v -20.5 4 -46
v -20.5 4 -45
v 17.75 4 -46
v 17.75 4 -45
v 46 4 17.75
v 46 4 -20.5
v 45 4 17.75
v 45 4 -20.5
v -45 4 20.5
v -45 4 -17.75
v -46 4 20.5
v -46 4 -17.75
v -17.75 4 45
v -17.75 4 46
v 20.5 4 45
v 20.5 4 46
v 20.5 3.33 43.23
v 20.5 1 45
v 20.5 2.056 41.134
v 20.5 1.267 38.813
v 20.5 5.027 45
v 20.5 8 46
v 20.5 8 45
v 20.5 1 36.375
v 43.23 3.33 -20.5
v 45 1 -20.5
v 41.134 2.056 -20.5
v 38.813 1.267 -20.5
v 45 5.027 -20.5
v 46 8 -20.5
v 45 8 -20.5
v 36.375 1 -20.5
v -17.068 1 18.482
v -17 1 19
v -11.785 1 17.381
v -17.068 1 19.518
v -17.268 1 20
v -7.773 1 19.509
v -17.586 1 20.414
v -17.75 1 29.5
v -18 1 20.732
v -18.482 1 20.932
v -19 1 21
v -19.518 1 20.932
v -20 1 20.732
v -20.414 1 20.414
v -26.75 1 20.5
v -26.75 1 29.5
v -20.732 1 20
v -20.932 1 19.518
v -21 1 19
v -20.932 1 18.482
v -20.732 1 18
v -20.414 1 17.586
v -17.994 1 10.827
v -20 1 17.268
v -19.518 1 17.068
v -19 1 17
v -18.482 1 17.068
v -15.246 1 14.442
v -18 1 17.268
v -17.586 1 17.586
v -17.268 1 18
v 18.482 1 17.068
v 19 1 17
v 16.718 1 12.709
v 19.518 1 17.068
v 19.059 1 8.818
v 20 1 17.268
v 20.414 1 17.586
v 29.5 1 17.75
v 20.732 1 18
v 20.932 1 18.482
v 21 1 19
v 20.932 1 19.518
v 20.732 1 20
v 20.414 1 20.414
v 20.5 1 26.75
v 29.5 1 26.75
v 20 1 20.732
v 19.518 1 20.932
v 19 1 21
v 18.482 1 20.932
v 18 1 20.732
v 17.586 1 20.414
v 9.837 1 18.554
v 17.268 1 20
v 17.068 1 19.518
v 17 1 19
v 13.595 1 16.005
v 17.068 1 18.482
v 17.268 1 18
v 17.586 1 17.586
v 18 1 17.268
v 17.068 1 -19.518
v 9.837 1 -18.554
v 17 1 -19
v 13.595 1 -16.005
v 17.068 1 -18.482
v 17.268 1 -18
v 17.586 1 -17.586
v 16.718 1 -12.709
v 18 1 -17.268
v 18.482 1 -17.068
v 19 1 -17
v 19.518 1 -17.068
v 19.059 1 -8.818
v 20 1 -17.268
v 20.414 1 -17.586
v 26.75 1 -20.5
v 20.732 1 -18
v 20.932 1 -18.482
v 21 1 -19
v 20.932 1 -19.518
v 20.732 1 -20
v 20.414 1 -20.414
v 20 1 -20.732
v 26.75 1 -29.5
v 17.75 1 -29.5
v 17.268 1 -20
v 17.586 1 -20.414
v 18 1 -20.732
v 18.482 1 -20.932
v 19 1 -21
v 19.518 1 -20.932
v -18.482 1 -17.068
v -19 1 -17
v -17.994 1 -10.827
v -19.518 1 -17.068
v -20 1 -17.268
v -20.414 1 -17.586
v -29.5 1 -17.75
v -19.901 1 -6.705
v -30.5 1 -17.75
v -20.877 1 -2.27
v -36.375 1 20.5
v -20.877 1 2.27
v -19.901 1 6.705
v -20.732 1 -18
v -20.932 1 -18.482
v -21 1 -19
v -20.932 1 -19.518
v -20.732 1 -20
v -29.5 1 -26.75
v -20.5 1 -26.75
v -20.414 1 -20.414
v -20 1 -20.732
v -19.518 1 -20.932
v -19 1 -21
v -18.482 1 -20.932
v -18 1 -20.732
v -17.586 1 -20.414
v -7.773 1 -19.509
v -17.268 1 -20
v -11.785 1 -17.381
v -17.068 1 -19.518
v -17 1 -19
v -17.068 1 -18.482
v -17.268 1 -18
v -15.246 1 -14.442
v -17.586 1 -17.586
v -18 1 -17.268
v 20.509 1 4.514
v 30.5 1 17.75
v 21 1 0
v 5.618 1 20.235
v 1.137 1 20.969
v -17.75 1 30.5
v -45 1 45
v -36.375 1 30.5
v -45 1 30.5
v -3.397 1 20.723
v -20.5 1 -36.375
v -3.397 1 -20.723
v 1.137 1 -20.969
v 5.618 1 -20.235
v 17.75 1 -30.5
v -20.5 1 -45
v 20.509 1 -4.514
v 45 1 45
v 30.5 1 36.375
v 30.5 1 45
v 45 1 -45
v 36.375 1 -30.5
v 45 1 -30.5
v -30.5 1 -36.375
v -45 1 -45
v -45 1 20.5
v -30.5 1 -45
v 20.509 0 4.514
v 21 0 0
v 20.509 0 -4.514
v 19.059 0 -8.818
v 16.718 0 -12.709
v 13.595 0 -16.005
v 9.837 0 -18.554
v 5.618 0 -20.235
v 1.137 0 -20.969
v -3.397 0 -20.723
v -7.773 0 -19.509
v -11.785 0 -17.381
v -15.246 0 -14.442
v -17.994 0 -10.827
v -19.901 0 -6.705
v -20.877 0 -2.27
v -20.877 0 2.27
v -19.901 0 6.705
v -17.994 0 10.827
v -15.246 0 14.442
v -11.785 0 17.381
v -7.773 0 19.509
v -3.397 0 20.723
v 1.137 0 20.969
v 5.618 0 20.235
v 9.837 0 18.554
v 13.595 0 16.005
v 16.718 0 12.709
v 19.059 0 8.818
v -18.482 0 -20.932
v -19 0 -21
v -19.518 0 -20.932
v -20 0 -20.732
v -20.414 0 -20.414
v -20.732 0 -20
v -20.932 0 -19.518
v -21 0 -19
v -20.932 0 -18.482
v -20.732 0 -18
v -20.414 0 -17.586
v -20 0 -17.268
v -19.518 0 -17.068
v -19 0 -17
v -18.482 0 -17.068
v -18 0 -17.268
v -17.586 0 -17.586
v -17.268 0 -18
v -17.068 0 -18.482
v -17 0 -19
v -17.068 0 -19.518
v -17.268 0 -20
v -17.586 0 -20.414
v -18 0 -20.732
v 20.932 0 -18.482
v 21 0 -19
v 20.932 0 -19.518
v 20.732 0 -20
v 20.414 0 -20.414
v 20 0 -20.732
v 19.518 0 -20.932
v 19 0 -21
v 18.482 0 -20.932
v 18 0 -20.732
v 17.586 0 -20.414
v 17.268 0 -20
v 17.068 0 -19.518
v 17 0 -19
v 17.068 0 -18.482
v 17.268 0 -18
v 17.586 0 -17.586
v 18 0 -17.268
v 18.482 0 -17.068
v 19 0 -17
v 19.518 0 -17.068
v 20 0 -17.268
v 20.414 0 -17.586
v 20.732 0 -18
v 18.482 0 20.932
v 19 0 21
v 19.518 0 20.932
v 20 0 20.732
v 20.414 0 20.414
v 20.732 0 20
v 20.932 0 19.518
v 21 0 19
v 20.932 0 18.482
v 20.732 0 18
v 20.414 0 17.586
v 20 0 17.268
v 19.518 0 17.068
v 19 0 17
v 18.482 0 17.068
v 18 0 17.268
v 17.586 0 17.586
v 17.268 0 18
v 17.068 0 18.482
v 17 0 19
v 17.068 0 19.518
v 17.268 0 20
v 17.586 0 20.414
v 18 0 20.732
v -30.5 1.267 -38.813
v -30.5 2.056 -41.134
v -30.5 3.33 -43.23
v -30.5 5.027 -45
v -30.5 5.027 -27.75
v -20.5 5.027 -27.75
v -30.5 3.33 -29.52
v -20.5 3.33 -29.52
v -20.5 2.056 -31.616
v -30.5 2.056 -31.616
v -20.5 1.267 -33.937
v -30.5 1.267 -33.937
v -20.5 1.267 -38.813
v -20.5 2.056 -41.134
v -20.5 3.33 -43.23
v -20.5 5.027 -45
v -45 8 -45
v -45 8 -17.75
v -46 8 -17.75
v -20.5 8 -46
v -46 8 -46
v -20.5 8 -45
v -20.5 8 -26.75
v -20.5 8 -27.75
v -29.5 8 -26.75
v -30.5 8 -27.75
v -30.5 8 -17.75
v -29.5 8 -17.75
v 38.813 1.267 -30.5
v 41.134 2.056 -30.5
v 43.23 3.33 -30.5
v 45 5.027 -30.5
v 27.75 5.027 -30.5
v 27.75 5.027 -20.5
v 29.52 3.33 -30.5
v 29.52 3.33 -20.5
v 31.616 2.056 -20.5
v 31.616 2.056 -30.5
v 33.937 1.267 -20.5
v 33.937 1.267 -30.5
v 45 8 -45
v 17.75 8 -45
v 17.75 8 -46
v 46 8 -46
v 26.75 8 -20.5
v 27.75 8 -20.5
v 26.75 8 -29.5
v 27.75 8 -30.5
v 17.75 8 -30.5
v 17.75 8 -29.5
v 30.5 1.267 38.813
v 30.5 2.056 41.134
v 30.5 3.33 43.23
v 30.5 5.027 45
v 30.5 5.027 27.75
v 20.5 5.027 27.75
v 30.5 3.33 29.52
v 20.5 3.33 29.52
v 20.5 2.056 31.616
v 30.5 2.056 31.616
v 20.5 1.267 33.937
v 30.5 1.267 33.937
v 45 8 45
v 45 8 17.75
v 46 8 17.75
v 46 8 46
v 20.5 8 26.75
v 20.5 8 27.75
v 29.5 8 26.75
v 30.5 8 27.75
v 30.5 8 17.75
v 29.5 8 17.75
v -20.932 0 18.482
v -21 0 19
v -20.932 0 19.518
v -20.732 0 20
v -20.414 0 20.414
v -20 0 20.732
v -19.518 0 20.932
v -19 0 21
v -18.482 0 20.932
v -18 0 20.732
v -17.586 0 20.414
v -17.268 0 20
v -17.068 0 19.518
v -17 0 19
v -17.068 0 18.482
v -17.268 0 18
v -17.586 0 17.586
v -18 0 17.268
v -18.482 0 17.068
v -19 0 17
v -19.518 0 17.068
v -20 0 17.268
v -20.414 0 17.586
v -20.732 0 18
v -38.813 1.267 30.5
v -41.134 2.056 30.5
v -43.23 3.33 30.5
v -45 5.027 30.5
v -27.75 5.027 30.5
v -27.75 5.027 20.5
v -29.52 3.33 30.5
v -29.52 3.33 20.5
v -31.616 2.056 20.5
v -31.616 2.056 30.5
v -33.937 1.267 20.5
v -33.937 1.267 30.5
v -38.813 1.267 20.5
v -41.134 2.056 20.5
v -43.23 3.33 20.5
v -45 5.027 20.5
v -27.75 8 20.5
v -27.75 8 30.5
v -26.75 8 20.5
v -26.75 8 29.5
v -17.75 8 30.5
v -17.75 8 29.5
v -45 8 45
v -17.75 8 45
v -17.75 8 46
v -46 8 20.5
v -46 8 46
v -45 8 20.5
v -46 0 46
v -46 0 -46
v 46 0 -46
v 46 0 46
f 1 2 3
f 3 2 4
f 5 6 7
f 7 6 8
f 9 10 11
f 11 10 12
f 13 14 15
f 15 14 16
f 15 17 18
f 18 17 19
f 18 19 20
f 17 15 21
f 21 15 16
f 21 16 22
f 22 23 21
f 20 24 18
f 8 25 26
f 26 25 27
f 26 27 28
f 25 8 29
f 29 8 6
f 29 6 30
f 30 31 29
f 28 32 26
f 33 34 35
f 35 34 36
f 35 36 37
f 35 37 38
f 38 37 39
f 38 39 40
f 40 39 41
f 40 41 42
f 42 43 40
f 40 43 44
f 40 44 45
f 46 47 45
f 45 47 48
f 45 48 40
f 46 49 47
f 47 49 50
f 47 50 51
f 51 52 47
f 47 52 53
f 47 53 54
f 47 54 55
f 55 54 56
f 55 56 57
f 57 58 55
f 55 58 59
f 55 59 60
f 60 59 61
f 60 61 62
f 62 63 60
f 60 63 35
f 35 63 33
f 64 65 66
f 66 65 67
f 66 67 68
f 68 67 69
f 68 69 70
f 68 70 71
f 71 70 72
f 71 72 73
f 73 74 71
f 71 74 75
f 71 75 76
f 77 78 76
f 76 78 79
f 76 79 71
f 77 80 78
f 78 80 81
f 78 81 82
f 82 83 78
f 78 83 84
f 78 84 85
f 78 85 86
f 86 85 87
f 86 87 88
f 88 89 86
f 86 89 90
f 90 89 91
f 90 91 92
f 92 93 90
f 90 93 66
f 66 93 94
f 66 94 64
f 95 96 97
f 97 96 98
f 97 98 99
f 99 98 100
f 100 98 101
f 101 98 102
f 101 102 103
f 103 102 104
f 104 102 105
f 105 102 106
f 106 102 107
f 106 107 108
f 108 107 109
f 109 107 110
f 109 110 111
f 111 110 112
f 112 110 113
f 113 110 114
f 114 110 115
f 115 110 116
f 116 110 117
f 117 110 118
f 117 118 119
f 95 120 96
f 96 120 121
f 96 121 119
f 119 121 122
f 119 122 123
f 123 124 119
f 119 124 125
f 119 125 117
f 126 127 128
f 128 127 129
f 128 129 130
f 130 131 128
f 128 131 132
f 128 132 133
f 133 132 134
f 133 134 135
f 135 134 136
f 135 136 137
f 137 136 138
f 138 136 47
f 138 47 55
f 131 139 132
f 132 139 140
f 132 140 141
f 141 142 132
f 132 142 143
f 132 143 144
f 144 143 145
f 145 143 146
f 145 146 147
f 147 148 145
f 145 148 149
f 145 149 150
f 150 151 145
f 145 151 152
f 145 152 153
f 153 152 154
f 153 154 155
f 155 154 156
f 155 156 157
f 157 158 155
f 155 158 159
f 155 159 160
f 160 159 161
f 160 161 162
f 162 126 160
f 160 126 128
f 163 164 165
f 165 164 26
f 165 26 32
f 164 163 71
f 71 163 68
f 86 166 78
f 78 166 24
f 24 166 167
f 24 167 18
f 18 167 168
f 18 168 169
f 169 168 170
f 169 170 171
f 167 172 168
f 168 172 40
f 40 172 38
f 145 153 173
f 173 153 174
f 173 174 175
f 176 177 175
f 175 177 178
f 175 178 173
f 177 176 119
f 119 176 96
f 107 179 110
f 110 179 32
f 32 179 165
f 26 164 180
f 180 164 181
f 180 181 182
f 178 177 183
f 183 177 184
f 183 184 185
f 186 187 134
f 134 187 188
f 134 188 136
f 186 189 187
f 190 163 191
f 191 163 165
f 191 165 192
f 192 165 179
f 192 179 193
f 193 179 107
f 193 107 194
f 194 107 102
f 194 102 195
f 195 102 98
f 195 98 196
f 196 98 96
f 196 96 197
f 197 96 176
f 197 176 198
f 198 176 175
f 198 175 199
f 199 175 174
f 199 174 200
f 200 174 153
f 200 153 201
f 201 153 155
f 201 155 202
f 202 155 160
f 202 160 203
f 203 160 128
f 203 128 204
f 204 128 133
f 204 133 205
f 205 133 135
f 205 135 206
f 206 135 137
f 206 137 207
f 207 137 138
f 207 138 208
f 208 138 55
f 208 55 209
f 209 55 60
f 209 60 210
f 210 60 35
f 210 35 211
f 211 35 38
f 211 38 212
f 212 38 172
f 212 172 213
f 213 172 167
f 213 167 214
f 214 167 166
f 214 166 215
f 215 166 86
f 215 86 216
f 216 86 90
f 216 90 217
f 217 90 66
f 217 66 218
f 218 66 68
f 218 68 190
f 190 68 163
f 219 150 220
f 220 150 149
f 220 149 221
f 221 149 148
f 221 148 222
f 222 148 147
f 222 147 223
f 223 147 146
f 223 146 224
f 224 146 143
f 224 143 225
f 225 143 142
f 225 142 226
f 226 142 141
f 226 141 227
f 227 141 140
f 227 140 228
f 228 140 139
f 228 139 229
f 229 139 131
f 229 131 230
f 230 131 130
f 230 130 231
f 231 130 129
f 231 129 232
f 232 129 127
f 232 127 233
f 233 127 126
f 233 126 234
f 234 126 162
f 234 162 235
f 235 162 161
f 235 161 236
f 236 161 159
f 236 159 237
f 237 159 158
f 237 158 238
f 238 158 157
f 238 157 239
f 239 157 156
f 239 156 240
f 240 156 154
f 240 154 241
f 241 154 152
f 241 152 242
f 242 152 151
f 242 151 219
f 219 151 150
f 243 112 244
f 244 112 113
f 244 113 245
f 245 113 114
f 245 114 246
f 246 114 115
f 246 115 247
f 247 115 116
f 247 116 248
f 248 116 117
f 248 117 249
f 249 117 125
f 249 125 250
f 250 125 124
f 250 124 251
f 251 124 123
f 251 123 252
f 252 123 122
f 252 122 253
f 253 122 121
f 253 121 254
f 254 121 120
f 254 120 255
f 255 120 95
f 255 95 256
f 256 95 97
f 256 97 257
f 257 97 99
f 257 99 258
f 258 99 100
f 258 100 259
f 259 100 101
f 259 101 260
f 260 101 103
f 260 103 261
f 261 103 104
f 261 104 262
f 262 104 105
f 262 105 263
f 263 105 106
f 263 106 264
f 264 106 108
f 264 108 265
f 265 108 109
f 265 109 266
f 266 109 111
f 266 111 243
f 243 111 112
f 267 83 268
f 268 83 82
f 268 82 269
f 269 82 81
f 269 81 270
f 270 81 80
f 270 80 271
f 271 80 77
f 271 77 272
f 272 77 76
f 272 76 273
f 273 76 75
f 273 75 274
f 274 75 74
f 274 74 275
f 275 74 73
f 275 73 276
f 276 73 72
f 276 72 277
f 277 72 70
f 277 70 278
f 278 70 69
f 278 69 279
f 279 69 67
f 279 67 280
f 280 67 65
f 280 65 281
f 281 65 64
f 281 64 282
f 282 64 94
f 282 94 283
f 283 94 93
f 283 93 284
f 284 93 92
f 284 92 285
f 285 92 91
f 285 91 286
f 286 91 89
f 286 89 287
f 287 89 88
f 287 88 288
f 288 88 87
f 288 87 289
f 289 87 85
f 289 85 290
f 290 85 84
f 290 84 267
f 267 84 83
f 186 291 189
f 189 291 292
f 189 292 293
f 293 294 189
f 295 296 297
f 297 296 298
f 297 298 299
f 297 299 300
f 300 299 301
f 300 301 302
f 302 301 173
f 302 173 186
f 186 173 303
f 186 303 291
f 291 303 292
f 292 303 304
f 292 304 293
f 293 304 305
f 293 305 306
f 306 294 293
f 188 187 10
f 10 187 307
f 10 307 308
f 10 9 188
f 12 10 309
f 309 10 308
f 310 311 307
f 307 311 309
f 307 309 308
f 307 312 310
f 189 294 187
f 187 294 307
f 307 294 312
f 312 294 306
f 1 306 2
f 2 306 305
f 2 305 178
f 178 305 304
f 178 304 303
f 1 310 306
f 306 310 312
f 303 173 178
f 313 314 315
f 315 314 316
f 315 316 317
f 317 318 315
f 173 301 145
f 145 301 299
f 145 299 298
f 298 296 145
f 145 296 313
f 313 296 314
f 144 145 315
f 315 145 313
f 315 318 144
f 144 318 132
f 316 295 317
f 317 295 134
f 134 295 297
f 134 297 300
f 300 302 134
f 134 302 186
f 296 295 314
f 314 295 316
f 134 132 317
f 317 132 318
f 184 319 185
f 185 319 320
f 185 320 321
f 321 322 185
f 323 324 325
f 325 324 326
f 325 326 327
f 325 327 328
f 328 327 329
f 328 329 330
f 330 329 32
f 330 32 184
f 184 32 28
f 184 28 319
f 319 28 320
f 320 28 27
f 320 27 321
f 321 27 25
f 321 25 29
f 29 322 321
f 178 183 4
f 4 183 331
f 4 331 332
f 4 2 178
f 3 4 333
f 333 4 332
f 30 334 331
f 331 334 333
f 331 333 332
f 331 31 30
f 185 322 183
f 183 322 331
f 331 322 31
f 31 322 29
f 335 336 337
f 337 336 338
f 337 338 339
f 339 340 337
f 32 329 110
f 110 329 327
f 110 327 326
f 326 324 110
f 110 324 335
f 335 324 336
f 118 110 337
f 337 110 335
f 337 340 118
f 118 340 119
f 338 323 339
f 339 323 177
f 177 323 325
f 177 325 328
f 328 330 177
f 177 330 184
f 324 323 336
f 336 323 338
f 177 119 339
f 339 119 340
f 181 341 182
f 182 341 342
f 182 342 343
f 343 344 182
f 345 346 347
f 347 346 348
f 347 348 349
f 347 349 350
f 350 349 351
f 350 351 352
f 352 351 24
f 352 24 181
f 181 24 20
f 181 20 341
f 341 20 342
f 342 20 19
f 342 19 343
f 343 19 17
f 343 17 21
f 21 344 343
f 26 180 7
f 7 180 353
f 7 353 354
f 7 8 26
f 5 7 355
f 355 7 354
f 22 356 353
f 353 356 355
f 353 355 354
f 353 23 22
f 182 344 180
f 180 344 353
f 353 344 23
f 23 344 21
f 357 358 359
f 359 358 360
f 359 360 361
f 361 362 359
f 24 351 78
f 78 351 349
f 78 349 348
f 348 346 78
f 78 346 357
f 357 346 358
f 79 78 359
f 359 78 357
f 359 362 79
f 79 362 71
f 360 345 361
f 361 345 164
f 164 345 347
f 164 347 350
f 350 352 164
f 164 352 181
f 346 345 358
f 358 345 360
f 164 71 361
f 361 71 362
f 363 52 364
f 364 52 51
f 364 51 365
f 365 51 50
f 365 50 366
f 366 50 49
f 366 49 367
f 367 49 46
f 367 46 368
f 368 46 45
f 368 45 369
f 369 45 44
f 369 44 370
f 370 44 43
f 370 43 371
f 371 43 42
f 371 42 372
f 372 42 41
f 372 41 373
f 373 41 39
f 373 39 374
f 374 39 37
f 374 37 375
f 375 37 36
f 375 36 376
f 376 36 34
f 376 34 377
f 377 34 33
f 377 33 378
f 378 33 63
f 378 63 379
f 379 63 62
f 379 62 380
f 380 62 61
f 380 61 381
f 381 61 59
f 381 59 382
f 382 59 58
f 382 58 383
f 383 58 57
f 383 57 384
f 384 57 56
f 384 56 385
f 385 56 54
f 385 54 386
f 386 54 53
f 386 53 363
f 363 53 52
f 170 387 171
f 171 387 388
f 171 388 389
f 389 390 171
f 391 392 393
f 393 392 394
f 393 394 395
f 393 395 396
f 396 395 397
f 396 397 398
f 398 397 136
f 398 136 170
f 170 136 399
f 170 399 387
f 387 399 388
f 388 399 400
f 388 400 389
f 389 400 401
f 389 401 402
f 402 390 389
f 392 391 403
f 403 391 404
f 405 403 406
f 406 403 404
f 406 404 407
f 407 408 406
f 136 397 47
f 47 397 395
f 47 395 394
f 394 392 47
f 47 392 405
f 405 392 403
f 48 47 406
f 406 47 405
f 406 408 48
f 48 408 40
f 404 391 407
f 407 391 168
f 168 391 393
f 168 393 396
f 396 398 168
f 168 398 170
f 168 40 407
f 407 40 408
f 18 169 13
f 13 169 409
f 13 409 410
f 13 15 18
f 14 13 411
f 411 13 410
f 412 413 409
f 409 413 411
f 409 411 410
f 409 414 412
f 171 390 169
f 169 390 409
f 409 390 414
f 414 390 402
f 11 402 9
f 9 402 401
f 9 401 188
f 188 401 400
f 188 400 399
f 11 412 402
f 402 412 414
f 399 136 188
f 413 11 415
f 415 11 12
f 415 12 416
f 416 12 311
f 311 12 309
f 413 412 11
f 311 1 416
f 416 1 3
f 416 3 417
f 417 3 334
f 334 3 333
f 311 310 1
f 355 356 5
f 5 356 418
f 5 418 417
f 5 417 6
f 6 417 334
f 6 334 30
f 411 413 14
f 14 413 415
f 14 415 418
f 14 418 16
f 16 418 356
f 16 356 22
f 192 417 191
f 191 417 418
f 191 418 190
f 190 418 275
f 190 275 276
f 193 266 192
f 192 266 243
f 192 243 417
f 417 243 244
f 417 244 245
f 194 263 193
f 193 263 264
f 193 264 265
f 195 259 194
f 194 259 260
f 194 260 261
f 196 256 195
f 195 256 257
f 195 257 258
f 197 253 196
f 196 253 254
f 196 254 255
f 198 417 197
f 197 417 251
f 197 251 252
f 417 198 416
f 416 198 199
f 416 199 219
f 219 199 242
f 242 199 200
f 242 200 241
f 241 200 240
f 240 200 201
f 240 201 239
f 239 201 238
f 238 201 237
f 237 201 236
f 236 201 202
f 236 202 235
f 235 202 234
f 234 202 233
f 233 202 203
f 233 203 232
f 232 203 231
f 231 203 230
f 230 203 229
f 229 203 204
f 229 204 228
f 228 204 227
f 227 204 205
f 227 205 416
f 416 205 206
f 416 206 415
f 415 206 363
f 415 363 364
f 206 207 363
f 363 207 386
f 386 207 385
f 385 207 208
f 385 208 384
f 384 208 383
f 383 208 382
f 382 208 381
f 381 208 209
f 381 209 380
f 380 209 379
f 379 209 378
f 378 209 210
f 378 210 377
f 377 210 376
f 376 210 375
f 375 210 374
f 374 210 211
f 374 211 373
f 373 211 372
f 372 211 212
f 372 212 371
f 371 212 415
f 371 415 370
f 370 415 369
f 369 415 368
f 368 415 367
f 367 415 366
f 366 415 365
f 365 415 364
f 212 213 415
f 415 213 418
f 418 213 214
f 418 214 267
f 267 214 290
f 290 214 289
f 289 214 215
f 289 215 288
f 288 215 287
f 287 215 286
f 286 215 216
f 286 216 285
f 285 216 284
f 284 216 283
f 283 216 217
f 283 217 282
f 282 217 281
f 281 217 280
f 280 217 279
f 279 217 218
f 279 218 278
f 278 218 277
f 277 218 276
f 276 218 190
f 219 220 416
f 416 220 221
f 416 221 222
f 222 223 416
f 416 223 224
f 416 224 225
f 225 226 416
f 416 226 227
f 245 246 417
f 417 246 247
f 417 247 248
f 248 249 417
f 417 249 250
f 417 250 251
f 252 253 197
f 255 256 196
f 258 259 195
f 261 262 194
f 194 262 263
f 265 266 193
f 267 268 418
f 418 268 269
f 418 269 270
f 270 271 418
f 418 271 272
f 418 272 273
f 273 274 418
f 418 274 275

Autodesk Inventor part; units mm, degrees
ref_plane "YZ Plane" through (0, 0, 0) normal (1, 0, 0) x (0, 1, 0)
ref_plane "XZ Plane" through (0, 0, 0) normal (0, 1, 0) x (-1, 0, 0)
ref_plane "XY Plane" through (0, 0, 0) normal (0, 0, 1) x (1, 0, 0)
sketch "Sketch1" plane through (0, 0, 0) normal (0, 1, 0) x (-1, 0, 0)
  line L0 (45, 45) -> (-45, 45)
  line L1 (-45, 45) -> (-45, -45)
  line L2 (-45, -45) -> (45, -45)
  line L3 (45, -45) -> (45, 45)
  line L4 (45, 45) -> (-45, -45) construction
  line L5 (-45, 45) -> (45, -45) construction
  line L6 (-46, 46) -> (46, 46)
  line L7 (46, 46) -> (46, -46)
  line L8 (46, -46) -> (-46, -46)
  line L9 (-46, -46) -> (-46, 46)
  line L10 (-46, 46) -> (46, -46) construction
  line L11 (46, 46) -> (-46, -46) construction
  point P0 (0, 0)
  dimension "d0" = 90
  dimension "d1" = 90
  dimension "d2" = 92
  dimension "d3" = 92
extrude "Extrusion1" add sketch "Sketch1" along normal blind 1 contours L3 L2 L1 L0 | L6 L7 L8 L9
sketch "Sketch2" plane through (0, 1, 0) normal (0, 1, 0) x (1, 0, 0)
  line L0 (-46, -46) -> (46, -46) projected
  line L1 (46, -46) -> (46, 46) projected
  line L2 (46, 46) -> (-46, 46) projected
  line L3 (-46, 46) -> (-46, -46) projected
  line L4 (45, 45) -> (-45, 45)
  line L5 (-45, -20.5) -> (-45, -45)
  line L6 (-45, -45) -> (-17.75, -45)
  line L7 (45, -45) -> (45, 45)
  line L8 (45, 45) -> (-45, -45) construction
  line L9 (-45, 45) -> (45, -45) construction
  line L10 (-27.75, -30.5) -> (-17.75, -30.5)
  line L11 (-17.75, -30.5) -> (-17.75, -29.5)
  line L12 (-17.75, -29.5) -> (-27.75, -29.5)
  line L13 (-27.75, -29.5) -> (-27.75, -30.5)
  line L14 (-27.75, -30.5) -> (-26.75, -30.5)
  line L15 (-26.75, -30.5) -> (-26.75, -20.5)
  line L16 (-26.75, -20.5) -> (-27.75, -20.5)
  line L17 (-27.75, -20.5) -> (-27.75, -30.5)
  line L18 (-17.75, -45) -> (-17.75, -46)
  line L19 (-46, -46) -> (46, -46) projected
  line L20 (-45, -20.5) -> (-46, -20.5)
  point P0 (0, 0)
  dimension "d6" = 90
  dimension "d7" = 90
  dimension "d8" = 1
  dimension "d9" = 1
  dimension "d10" = 10
  dimension "d11" = 10
  dimension "d12" = 14.5
  dimension "d13" = 17.25
sketch "Sketch3" plane through (0, 1, 0) normal (0, 1, 0) x (1, 0, 0)
  line L0 (-27.75, -30.5) -> (-17.75, -30.5) projected
  line L1 (-27.75, -20.5) -> (-27.75, -30.5) projected
  line L2 (-26.75, -30.5) -> (-26.75, -20.5) projected
  line L3 (-17.75, -29.5) -> (-27.75, -29.5) projected
  line L4 (-26.75, -20.5) -> (-27.75, -20.5) projected
  line L5 (-17.75, -45) -> (-17.75, -46) projected
  line L6 (-45, -20.5) -> (-46, -20.5) projected
  line L7 (-46, 46) -> (-46, -46) projected
  line L8 (-45, -20.5) -> (-46, -20.5)
  line L9 (-46, -20.5) -> (-46, -46)
  line L10 (-46, -46) -> (-45, -46)
  line L11 (-45, -46) -> (-45, -20.5)
  line L12 (-46, -46) -> (46, -46) projected
  line L13 (-46, -46) -> (-17.75, -46)
  line L14 (-17.75, -46) -> (-17.75, -45)
  line L15 (-17.75, -45) -> (-46, -45)
  line L16 (-46, -45) -> (-46, -46)
  line L17 (-27.75, -30.5) -> (-17.75, -30.5)
  line L18 (-17.75, -30.5) -> (-17.75, -29.5)
  line L19 (-17.75, -29.5) -> (-27.75, -29.5)
  line L20 (-27.75, -29.5) -> (-27.75, -30.5)
  point P0 (0, 0)
extrude "Extrusion2" add sketch "Sketch3" along normal blind 7
sketch "Sketch4" plane through (-45, 1, 20.5) normal (0, 0, -1) x (-1, 0, 0)
  line L0 (-17.25, 0) -> (-18.25, 0) projected
  line L1 (-17.25, 0) -> (-17.25, 7) projected
  line L2 (-18.25, 7) -> (-17.25, 7) projected
  line L3 (-18.25, 0) -> (-18.25, 7) projected
  line L4 (1, 0) -> (0, 0) projected
  line L5 (1, 0) -> (1, 7) projected
  line L6 (0, 7) -> (1, 7) projected
  line L7 (0, 0) -> (0, 7) projected
  line L8 (0, 0) -> (-27.25, 0) projected
  arc A0 (-17.25, 4.027) -> (0, 4.027) centre (-8.625, 11.25) ccw
  line L9 (-91, 0) -> (1, 0) projected
  line L10 (-17.25, 0) -> (-17.25, 7) projected
  line L11 (-8.625, 0) -> (-17.25, 0)
  line L12 (-17.25, 0) -> (-17.25, 4.027)
  line L13 (0, 0) -> (0, 7) projected
  line L14 (-8.625, 0) -> (0, 0)
  line L15 (0, 0) -> (0, 4.027)
  point P0 (-45, -1)
  dimension "d16" = 22.5
  dimension "d17" = 8.625
extrude "Extrusion3" add sketch "Sketch4" against normal blind 10 contours A0 L7 L8 | L1 A0 L8
sketch "Sketch5" plane through (0, 1, 0) normal (0, 1, 0) x (1, 0, 0)
  line L0 (-17.75, -46) -> (46, -46) projected
  line L1 (-46, -20.5) -> (-46, -46) projected
  point P0 (0, 0)
  point P1 (-19, -19)
  dimension "d23" = 27
  dimension "d24" = 27
hole "Hole1" at (-19, 1, 19) direction (0, -1, 0) diameter 4 end through all
pattern_circular "Circular Pattern2" count 4 over 360 about axis through (0, -10, 0) along (0, 1, 0) of "Extrusion2", "Extrusion3", "Hole1"
sketch "Sketch6" plane through (0, 1, 0) normal (0, 1, 0) x (1, 0, 0)
  circle A0 centre (0, 0) radius 21
  dimension "d35" = 42
extrude "Extrusion4" cut sketch "Sketch6" against normal blind 10
sketch "Sketch7" plane through (0, 1, 0) normal (0, 1, 0) x (1, 0, 0)
  line L0 (45, 45) -> (-45, 45)
  line L1 (-45, 45) -> (-45, -45)
  line L2 (-45, -45) -> (45, -45)
  line L3 (45, -45) -> (45, 45)
  line L4 (45, 45) -> (-45, -45) construction
  line L5 (-45, 45) -> (45, -45) construction
  line L6 (46, -46) -> (-46, -46) projected
  line L7 (-46, 46) -> (46, 46)
  line L8 (46, 46) -> (46, -46)
  line L9 (46, -46) -> (-46, -46)
  line L10 (-46, -46) -> (-46, 46)
  line L11 (-46, 46) -> (46, -46) construction
  line L12 (46, 46) -> (-46, -46) construction
  point P0 (0, 0)
  dimension "d38" = 90
  dimension "d39" = 90
extrude "Extrusion5" add sketch "Sketch7" along normal blind 3
properties part number "motor_mount_base2_bottom"
